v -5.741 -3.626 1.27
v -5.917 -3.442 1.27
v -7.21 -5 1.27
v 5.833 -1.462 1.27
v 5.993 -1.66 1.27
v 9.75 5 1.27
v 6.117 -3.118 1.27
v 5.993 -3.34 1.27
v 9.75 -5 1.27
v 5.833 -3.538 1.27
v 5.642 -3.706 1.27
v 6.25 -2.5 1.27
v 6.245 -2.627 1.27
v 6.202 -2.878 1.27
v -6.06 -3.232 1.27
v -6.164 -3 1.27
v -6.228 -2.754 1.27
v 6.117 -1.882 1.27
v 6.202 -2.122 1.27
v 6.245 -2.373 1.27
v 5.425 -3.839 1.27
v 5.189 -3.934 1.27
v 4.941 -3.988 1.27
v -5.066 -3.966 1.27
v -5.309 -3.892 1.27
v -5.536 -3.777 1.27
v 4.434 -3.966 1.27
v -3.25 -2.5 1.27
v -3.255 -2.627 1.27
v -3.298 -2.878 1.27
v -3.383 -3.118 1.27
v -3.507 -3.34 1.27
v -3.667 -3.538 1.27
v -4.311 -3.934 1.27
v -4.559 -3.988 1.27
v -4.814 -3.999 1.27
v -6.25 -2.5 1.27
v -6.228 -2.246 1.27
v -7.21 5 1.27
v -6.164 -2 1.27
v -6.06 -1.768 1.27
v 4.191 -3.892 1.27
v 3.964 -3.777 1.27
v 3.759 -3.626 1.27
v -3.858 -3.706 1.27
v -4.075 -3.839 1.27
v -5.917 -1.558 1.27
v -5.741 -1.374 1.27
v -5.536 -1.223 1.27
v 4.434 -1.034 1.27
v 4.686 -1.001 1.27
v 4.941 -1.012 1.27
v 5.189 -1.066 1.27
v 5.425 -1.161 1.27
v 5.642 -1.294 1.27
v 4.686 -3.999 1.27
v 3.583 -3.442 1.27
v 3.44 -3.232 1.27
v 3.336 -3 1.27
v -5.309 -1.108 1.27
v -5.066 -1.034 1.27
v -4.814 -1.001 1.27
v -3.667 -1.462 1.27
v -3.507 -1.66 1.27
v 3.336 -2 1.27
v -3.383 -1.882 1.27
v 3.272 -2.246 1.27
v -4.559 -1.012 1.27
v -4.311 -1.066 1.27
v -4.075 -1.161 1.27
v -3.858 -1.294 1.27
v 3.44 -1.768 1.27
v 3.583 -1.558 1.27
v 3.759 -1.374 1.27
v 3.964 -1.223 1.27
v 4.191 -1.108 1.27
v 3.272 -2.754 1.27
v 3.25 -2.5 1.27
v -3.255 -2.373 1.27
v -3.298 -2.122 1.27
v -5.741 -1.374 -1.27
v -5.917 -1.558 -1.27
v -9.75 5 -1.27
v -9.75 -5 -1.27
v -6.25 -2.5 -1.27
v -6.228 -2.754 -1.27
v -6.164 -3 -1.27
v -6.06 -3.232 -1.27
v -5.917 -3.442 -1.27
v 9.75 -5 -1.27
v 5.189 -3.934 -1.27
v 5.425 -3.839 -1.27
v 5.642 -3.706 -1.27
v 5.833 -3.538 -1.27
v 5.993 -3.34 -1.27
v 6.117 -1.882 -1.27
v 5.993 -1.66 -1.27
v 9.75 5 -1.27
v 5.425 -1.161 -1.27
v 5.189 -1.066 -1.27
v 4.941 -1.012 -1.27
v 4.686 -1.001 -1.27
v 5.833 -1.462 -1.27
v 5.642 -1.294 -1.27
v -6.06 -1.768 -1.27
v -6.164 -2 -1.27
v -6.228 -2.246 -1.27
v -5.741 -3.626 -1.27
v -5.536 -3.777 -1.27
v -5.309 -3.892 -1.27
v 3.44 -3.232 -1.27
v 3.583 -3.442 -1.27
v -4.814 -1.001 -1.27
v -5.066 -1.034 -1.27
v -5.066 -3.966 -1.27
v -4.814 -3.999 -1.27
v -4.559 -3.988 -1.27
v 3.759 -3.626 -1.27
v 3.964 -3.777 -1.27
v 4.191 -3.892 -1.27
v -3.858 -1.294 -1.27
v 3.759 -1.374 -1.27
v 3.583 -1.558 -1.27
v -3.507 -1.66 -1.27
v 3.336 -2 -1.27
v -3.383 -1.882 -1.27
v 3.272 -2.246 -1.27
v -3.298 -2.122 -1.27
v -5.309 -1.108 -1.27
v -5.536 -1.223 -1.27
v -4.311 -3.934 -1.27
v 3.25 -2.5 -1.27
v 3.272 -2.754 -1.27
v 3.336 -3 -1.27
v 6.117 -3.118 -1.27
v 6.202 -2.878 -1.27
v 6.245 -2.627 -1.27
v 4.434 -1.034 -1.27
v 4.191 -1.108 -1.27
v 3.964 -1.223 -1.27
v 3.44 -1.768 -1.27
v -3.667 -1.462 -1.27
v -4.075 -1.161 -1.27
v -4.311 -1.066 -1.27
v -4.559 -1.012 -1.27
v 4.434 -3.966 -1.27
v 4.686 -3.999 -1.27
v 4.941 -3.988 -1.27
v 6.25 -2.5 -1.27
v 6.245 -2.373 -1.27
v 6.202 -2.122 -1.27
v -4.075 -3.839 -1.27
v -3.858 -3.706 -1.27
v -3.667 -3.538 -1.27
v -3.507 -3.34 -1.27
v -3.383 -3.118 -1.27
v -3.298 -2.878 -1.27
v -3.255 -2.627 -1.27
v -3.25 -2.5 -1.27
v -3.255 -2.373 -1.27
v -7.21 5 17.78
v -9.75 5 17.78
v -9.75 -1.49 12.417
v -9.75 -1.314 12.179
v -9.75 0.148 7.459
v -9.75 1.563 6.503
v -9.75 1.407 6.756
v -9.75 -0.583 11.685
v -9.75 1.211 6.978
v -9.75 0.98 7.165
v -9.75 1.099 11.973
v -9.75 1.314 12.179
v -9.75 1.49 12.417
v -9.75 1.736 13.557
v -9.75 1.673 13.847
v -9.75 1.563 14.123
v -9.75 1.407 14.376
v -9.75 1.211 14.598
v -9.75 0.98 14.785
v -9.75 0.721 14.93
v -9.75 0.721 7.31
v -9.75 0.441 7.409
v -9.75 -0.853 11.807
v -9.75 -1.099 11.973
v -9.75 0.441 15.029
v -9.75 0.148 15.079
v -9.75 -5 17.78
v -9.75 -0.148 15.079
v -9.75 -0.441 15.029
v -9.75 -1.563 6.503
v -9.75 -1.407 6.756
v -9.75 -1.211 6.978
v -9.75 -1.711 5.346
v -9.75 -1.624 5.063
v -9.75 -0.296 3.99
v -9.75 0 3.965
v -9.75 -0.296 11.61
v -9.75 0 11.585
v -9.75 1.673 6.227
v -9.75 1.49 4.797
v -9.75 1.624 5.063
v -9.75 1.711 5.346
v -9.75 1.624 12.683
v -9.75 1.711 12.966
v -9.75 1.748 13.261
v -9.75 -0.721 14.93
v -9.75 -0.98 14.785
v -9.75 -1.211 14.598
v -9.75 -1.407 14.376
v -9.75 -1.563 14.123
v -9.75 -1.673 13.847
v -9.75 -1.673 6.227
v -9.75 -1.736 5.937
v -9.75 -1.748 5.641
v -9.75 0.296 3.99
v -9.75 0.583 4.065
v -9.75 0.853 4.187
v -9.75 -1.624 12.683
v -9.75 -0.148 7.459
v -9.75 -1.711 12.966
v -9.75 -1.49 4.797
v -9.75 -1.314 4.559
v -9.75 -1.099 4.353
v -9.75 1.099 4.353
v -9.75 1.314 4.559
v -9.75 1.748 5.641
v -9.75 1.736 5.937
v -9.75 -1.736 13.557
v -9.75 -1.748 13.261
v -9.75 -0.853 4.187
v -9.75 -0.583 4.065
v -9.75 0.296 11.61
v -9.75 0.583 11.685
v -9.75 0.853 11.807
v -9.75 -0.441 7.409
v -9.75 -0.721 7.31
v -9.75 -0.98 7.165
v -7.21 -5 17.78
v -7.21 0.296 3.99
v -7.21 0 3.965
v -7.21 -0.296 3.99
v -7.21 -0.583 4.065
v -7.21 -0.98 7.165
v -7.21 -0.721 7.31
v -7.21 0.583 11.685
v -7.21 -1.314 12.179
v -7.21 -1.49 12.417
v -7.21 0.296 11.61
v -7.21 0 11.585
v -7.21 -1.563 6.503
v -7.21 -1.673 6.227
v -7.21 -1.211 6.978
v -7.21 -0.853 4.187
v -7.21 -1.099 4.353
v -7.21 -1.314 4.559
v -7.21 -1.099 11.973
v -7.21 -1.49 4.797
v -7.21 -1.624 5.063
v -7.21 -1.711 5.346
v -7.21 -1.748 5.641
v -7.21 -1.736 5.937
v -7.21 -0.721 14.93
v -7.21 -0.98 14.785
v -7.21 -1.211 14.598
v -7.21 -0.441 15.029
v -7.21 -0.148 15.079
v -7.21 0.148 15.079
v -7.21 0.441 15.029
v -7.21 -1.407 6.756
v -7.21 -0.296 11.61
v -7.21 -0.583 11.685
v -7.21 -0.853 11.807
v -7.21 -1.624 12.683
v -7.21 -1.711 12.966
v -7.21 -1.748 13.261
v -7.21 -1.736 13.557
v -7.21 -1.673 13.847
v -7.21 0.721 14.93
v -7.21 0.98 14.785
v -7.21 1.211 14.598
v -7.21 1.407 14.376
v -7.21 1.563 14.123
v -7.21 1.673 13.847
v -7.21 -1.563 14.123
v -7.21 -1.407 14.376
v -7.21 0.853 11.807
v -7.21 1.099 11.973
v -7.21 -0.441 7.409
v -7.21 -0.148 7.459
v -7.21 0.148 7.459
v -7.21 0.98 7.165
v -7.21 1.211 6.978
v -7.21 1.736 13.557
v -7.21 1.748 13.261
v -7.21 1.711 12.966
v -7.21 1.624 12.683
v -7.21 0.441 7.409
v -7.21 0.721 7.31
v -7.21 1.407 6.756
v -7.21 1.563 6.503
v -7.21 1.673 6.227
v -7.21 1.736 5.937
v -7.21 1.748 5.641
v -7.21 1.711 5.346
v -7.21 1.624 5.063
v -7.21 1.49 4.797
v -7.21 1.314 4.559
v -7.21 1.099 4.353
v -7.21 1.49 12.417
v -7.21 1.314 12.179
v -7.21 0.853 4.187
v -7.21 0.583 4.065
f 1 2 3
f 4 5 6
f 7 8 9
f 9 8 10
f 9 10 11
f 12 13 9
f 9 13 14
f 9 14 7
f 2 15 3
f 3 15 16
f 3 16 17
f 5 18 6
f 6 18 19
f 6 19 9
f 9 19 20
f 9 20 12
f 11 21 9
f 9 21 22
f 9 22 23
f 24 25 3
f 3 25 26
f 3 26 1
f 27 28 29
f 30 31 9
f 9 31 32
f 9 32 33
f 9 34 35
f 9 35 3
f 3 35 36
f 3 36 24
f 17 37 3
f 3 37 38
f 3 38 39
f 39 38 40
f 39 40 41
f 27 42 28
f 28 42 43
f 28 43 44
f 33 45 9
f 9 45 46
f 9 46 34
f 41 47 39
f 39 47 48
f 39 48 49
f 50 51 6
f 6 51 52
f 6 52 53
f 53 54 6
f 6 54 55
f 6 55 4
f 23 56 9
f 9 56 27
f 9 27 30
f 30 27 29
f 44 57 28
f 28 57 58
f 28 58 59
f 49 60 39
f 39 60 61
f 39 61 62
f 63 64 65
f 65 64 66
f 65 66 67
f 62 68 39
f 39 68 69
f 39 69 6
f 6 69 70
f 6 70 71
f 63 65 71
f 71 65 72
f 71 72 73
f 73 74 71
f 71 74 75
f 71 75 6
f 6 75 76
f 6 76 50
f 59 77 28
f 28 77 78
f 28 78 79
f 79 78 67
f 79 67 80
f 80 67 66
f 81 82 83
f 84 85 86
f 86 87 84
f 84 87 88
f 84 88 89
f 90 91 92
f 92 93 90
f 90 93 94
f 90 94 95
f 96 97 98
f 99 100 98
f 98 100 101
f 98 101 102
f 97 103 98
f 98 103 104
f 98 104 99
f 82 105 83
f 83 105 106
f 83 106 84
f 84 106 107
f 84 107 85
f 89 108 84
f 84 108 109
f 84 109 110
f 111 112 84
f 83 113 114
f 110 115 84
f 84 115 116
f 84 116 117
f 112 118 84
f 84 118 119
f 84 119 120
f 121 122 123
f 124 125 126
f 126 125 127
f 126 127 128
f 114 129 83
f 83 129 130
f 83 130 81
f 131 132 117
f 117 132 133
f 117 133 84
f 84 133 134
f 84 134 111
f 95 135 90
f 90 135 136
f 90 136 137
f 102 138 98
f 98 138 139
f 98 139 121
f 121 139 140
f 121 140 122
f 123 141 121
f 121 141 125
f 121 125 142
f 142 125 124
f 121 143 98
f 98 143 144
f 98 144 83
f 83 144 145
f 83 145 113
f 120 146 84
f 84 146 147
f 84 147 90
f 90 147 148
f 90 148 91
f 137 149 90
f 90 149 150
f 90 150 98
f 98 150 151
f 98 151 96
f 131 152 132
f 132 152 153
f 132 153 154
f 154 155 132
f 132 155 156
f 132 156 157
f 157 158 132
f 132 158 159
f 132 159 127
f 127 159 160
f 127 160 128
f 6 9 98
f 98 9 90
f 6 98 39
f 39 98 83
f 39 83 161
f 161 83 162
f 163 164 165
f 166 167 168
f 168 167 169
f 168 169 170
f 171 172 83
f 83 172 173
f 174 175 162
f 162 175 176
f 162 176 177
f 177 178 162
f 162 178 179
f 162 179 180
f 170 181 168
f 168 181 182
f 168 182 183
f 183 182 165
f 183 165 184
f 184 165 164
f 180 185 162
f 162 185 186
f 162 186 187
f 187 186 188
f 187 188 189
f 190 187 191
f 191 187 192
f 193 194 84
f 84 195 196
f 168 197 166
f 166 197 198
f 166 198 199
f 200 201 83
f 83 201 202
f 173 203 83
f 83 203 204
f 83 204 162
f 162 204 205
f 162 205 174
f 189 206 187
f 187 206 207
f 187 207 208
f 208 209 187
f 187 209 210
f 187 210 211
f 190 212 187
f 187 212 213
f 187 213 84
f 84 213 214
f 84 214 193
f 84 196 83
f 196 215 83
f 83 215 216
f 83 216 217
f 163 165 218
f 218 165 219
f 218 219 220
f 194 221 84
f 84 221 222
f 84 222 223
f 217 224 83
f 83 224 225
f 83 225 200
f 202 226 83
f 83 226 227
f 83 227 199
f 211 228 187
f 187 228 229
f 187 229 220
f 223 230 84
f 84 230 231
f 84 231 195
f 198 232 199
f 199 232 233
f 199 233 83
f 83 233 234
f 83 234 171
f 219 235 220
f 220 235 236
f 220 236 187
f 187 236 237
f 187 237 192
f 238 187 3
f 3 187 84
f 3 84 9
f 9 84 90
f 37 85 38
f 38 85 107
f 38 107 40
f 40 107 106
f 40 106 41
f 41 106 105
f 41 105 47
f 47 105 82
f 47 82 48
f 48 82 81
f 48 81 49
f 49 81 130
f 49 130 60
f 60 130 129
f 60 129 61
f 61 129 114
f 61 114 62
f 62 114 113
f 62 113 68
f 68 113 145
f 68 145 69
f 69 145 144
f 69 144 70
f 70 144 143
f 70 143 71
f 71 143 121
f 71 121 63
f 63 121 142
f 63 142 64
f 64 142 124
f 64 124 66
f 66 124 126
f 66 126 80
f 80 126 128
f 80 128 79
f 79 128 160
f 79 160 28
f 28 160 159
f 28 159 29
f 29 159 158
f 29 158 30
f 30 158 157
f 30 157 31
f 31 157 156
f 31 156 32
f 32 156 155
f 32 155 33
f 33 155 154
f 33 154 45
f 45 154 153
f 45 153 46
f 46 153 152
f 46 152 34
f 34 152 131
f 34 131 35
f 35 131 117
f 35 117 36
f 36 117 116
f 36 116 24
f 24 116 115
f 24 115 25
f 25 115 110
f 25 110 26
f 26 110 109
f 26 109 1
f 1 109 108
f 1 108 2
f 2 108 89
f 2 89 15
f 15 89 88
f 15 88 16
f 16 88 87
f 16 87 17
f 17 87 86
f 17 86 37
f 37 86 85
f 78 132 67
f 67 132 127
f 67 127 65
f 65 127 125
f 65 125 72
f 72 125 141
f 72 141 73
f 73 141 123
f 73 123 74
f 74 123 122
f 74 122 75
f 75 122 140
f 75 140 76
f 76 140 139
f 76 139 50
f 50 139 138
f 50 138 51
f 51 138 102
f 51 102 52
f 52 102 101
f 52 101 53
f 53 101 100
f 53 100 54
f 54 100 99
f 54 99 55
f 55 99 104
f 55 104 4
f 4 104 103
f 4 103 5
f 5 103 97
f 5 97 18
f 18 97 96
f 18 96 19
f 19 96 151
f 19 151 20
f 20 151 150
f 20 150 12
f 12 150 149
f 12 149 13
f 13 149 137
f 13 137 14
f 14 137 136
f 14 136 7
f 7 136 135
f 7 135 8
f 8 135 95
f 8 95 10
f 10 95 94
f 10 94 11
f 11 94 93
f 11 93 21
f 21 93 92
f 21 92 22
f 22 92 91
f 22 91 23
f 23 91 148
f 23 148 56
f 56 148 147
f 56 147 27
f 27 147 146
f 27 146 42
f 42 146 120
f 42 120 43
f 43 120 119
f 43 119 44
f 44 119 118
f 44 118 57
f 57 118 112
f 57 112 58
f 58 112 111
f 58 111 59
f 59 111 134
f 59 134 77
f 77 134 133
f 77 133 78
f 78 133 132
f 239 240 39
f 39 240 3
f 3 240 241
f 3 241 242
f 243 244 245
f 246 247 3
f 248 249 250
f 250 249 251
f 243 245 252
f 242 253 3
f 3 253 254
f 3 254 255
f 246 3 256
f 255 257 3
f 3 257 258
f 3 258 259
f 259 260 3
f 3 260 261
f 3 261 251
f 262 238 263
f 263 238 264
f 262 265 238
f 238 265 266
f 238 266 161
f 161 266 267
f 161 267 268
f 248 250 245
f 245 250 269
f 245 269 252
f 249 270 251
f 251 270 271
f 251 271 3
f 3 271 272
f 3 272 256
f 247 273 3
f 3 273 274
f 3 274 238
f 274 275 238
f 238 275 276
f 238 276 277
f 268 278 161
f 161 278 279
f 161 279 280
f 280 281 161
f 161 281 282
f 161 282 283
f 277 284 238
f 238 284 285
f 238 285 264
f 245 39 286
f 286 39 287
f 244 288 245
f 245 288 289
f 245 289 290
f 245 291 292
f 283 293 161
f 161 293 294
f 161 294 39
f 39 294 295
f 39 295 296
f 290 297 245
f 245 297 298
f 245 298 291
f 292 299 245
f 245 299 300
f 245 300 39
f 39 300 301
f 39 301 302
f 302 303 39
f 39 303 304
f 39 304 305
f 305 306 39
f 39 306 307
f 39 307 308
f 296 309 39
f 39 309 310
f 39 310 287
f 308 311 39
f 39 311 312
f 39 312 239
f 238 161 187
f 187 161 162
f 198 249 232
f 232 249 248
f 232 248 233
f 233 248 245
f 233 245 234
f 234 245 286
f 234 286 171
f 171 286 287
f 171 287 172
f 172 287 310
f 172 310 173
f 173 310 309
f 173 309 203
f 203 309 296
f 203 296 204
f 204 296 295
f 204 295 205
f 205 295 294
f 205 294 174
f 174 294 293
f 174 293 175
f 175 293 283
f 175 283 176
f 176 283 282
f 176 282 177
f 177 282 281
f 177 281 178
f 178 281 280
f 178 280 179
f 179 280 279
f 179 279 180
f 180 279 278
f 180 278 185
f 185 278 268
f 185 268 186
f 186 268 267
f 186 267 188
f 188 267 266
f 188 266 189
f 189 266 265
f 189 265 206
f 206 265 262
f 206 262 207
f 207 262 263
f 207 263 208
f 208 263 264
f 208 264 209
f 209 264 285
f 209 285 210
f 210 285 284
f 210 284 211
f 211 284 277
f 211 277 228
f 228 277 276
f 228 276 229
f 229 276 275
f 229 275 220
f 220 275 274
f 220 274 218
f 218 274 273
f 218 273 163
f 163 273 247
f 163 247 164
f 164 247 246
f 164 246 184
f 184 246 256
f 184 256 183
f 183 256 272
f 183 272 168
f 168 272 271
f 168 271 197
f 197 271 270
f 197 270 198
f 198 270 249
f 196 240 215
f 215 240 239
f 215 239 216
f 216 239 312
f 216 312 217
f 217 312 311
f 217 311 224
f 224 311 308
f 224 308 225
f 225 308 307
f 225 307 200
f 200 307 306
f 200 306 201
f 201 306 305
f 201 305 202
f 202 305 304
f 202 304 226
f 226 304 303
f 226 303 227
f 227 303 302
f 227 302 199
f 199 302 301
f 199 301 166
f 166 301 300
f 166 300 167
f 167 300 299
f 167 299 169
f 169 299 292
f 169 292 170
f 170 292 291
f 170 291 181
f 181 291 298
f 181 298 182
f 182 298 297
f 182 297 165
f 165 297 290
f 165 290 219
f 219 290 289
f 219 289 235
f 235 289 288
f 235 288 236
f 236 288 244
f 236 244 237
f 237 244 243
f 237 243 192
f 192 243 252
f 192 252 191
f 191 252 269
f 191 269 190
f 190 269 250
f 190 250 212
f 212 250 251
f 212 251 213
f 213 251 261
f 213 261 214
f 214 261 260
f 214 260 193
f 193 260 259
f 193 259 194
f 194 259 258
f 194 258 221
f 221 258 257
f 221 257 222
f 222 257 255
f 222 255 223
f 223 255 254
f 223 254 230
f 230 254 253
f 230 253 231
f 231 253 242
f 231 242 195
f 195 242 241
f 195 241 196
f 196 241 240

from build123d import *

# Parameters (mm, degrees)
SKETCH2_W           = 19.5
SKETCH2_H           = 10
SKETCH2_R           = 1.5
BOSS_EXTRUDE1_DEPTH = 1.27
SKETCH3_W           = 19.05
SKETCH3_H           = 10
BOSS_EXTRUDE2_DEPTH = 2.54
SKETCH4_R           = 1.75
CUT_EXTRUDE1_DEPTH  = 26.075286638


with BuildPart() as part:
    # Sketch2 → Boss-Extrude1 (new, symmetric)
    with BuildSketch(Plane.XY):
        Rectangle(SKETCH2_W, SKETCH2_H)
        with Locations((-4.75, -2.5)):
            Circle(SKETCH2_R, mode=Mode.SUBTRACT)
        with Locations((4.75, -2.5)):
            Circle(SKETCH2_R, mode=Mode.SUBTRACT)
    extrude(amount=BOSS_EXTRUDE1_DEPTH, both=True)

    # Sketch3 → Boss-Extrude2 (add)
    with BuildSketch(Plane.ZY.offset(9.75)):
        with Locations((8.255, 0)):
            Rectangle(SKETCH3_W, SKETCH3_H)
    extrude(amount=-BOSS_EXTRUDE2_DEPTH)

    # Sketch4 → Cut-Extrude1 (cut, through all)
    with BuildSketch(Plane(origin=(-7.21, 0, 0), x_dir=(0, 0, -1), z_dir=(1, 0, 0))):
        with Locations((-5.715, 0)):
            Circle(SKETCH4_R)
        with Locations((-13.335, 0)):
            Circle(SKETCH4_R)
    extrude(amount=-CUT_EXTRUDE1_DEPTH, mode=Mode.SUBTRACT)


solid = part.part
